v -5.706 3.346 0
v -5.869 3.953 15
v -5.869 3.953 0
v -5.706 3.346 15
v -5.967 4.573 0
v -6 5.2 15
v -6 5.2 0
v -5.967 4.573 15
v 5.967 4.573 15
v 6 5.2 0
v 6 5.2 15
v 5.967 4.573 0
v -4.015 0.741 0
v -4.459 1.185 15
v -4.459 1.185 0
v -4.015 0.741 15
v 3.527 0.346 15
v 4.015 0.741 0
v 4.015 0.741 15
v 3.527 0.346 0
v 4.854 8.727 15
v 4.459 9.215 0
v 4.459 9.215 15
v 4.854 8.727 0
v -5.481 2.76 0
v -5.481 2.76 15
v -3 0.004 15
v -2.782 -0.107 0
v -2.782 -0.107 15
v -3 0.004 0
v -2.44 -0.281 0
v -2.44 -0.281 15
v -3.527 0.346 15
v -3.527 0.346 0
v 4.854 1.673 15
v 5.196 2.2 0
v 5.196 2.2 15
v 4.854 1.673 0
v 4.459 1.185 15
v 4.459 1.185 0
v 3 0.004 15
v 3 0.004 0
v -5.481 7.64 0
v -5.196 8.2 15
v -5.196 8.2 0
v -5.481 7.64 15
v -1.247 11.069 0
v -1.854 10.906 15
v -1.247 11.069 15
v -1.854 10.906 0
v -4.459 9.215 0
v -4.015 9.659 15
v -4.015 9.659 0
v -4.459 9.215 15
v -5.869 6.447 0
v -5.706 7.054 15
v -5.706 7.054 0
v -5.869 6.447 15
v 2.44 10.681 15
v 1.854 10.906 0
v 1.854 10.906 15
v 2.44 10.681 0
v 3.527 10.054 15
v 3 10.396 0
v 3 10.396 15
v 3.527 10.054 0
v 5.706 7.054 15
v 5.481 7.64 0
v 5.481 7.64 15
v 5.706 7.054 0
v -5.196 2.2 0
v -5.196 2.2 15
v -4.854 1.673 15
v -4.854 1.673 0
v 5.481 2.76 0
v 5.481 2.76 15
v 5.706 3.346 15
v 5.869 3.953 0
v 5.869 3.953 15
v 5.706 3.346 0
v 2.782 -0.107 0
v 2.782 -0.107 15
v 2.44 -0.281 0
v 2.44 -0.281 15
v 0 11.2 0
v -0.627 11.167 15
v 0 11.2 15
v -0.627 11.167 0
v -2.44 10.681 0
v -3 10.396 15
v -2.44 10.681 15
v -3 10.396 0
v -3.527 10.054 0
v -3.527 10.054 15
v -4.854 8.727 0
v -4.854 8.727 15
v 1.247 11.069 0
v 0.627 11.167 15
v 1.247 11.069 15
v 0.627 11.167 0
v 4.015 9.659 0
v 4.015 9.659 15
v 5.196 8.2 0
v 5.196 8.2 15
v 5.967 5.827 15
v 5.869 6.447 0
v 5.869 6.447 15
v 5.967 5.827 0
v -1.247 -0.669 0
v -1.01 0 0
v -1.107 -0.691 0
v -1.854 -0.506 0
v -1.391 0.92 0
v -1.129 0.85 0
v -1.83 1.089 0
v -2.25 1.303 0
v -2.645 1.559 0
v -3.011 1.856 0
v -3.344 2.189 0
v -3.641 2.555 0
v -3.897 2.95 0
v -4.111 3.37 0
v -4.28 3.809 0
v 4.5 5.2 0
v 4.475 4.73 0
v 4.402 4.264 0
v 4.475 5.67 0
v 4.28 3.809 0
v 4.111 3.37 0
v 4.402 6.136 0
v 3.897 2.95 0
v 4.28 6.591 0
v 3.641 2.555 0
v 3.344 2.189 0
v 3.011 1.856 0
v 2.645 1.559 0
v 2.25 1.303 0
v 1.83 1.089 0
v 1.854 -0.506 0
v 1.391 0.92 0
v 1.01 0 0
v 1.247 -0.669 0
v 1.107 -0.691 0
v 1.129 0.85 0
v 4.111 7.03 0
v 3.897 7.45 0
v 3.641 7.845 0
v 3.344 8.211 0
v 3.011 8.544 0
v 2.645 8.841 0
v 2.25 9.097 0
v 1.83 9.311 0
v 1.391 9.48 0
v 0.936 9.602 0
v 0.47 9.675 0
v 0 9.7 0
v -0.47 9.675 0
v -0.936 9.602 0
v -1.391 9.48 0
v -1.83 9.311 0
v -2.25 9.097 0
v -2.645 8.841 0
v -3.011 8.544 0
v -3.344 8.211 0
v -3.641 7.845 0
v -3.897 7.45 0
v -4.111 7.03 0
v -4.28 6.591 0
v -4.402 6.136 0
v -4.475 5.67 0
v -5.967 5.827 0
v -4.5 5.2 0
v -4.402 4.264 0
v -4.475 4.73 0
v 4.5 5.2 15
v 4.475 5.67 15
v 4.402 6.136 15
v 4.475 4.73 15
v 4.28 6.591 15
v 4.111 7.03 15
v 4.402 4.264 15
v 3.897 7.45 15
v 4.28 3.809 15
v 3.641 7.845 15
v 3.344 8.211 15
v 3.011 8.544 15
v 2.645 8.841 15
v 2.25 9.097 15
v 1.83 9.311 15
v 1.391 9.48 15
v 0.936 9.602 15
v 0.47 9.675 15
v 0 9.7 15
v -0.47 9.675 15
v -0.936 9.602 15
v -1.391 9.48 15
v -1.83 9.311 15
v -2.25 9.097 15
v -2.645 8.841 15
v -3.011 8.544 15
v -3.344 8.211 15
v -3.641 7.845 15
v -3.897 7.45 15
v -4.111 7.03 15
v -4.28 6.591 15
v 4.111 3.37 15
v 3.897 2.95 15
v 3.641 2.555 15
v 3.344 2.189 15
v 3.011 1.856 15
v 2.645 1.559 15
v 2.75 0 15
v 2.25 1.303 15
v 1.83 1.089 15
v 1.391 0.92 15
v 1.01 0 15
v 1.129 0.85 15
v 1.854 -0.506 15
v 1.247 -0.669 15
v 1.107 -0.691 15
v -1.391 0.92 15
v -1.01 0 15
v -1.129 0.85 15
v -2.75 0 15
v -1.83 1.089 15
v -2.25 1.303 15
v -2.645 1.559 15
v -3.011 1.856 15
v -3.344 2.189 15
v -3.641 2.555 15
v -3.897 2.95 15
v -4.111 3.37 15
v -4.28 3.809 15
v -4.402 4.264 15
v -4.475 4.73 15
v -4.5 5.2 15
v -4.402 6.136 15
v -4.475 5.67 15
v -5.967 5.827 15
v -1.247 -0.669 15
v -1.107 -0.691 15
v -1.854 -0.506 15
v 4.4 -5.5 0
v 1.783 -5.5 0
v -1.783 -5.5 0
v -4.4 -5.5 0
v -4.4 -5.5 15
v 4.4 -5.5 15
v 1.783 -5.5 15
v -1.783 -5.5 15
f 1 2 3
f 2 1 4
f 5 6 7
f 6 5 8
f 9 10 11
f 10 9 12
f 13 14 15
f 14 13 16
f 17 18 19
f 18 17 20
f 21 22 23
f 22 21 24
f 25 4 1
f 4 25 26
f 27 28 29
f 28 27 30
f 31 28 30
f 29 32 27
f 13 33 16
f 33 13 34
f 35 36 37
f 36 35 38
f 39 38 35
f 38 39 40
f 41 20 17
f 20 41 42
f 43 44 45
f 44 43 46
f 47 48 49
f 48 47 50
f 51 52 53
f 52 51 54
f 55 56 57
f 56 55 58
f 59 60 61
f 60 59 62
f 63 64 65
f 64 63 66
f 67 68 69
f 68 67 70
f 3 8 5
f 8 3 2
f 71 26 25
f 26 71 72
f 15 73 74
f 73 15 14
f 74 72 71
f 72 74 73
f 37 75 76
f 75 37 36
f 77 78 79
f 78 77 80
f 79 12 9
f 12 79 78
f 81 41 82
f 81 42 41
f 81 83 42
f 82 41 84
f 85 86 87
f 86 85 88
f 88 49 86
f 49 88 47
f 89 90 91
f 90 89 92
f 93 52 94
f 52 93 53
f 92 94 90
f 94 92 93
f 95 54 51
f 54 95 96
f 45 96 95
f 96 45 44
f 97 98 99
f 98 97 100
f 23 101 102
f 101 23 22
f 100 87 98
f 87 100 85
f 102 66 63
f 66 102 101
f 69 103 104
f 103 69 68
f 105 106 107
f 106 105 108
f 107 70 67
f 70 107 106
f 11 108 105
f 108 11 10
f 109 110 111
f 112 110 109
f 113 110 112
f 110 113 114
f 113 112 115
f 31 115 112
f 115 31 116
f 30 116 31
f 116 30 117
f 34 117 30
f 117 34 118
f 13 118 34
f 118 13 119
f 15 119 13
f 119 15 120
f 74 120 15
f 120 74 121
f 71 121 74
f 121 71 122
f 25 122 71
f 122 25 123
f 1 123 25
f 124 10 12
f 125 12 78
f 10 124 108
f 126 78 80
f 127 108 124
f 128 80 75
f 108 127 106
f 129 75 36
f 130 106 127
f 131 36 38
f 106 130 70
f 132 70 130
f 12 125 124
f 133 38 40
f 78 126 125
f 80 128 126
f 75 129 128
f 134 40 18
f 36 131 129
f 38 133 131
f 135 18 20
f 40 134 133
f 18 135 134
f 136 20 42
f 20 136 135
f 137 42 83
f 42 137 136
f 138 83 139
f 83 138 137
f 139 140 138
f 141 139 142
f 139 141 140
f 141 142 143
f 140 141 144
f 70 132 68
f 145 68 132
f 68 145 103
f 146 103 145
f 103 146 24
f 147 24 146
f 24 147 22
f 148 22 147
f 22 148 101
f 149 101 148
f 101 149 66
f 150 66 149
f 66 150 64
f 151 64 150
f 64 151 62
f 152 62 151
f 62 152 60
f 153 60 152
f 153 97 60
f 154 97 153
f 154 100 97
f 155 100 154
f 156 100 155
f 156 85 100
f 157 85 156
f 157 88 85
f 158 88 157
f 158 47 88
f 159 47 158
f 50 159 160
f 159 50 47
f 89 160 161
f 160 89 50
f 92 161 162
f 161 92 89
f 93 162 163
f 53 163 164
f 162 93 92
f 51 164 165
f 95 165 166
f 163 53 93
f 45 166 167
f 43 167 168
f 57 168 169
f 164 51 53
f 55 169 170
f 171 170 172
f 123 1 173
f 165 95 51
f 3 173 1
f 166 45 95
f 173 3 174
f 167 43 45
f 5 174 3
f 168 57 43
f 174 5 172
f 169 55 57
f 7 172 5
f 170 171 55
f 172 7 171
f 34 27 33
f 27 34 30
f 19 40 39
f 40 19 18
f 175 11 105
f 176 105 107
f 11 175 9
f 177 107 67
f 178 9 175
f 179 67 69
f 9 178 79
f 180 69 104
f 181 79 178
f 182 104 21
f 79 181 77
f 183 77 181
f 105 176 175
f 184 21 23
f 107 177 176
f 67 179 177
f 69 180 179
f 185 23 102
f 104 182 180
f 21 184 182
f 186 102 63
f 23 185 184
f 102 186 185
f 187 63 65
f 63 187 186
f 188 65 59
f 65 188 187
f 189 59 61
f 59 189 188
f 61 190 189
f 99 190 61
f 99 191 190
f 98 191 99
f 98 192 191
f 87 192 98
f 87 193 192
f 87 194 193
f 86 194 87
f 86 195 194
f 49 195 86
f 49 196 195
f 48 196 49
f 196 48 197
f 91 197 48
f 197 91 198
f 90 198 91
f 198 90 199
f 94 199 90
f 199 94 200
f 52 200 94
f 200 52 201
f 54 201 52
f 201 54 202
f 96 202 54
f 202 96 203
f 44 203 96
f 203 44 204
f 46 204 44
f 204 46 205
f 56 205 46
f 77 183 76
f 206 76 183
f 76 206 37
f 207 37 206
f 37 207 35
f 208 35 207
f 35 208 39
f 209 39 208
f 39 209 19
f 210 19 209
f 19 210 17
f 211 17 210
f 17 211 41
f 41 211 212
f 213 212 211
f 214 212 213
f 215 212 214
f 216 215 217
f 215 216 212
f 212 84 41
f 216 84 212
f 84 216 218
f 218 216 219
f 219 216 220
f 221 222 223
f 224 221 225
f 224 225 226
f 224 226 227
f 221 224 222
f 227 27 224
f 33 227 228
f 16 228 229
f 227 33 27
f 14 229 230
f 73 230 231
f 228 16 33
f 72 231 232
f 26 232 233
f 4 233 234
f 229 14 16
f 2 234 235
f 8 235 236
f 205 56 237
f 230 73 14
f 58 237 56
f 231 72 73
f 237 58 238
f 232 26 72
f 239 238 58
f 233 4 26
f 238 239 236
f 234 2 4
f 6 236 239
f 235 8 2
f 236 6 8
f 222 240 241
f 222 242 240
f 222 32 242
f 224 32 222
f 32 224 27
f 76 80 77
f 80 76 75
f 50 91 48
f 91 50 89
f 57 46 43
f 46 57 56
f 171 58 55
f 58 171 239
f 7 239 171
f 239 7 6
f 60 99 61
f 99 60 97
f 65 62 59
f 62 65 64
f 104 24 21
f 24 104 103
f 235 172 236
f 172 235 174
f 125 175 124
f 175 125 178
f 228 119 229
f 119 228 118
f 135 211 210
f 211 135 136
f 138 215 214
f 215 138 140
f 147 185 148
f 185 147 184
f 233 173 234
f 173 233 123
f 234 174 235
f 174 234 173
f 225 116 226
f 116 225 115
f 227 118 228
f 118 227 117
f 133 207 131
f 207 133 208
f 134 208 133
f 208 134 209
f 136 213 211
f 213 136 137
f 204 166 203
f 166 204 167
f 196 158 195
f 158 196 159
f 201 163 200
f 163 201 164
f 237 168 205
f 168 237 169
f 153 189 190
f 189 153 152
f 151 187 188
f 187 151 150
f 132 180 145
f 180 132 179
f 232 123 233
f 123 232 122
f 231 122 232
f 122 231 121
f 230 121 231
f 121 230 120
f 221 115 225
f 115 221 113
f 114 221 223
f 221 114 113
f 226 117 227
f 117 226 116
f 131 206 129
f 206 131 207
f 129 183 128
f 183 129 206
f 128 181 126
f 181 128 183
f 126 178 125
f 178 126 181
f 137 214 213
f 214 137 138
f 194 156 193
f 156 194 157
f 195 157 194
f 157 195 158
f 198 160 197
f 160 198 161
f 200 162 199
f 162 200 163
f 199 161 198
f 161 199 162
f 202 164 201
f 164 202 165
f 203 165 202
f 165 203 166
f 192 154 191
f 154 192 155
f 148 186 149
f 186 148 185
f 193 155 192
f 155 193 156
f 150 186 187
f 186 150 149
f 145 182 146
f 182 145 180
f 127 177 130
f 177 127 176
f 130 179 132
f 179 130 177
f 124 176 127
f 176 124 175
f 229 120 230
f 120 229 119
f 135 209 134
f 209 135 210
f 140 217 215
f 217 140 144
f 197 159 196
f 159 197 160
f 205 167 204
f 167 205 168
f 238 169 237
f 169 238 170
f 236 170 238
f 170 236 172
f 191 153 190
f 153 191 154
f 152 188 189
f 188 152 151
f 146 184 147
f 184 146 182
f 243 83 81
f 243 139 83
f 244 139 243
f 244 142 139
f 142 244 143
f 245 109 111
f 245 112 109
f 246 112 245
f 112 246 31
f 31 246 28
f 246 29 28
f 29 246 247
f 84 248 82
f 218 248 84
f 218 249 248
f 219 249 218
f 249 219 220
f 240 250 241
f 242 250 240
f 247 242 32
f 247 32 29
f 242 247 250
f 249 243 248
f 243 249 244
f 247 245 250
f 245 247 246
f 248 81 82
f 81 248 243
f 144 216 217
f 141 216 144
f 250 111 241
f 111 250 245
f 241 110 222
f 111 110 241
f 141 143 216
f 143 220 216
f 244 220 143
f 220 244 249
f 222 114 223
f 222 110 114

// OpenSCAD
// file: long_bow_tie.scad
tilt_level = 1.1;

include <include.scad>;
include <globals.scad>;

obj_leg = 12;

function scale_x() = 1;
function scale_z() = (male_dove_depth-0.2)/male_dove_depth;

length = 50;

// shifts the upper dove to right
_offset = 0;


//long_bow_tie();
//long_bow_tie(25);

//long_bow_tie_half(length);
//long_bow_tie_half(30);
//long_bow_tie_half_split(length);

long_bow_tie_split(length);
//long_bow_tie_split(30);



module bow_tie_master(length){
    dovetail_3d(
        male_dove_max_width,
        male_dove_min_width,
        male_dove_depth,
        length
    );
}

module long_bow_tie_unscaled(length) {

    module endcyl() {
        translate([0, 0, -3])
        cylinder(d=24, h=6, $fn=60);
    }

    module endtub() {
        rotate([0, 90, 0])
        translate([0, 0, -15/2])
        difference() {
            cylinder(d=20, h=15, $fn=60);
            cylinder(d=12, h=16, $fn=60);

            translate([-20, 0, -0.1])
            cube([40, 20, 16]);
        }
    }

    module _half() {

        translate([0, length/2, 0])
        difference() {
            intersection(){
                rotate([90, 0, 0])
                bow_tie_master(length);

                rotate([90, 0, 0])
                cylinder(r=5.8, h=length * 2);
            }
            translate([13, 5, 0])
            rotate([90, 0, 25])
            endcyl();

            translate([-13, 5, 0])
            rotate([90, 0, -25])
            endcyl();

            translate([13, -length - 5, 0])
            rotate([90, 0, -25])
            endcyl();

            translate([-13, -length - 5, 0])
            rotate([90, 0, 25])
            endcyl();

            translate([0, -length + 4.5, 0])
            endtub();

            translate([0, -4.5, 0])
            rotate([180, 0, 0])
            endtub();
        }
    }

    union() {
        translate([_offset, 0, 0])
        _half();

        mirror([0, 0, 1])
        _half();
    }
}

module long_bow_tie(
    length=length, scale_x=scale_x(), 
    scale_z=scale_z(), middle=false) {

    scale([scale_x, 1, scale_z]) {
        if(middle) {
            long_bow_tie_unscaled(length);
        } else {
            translate([0, 0, male_dove_depth])
            long_bow_tie_unscaled(length);
        }
    }
}

module split(length) {
    translate([0, 0, -length/2 - 1])
    linear_extrude(height=length + 2)
    polygon(points=[
        [0, -1.5], [0.9, -1.5], [2, -5],
        [-2, -5], [-0.9, -1.5]
    ]);
}

module long_bow_tie_split(
    length=length, scale_x=scale_x(),
    scale_z=scale_z(), middle=false
) {

    module _do_split() {
        rotate([90, 0, 0])
        difference() {
            rotate([-90, 0, 0])
            long_bow_tie(
                length, scale_x=scale_x,
                scale_z=scale_z, middle=true);

            split(length);

            translate([_offset, 0, 0])
            rotate([0, 0, 180])
            split(length);
        }
    }
        
    if (!middle) {
        translate([0, 0, scale_z * male_dove_depth])
        _do_split();
    } else {
        _do_split();
    }
}

module long_bow_tie_half(
    length=length, scale_x=scale_x(),
    scale_z=scale_z(), middle=true) {

    rotate([0, -90, 0])
    intersection() {
        long_bow_tie(length, middle=middle);

        translate([0, -length/2, -24/2])
        chamfered_cube(
            13, length, 24, 1
        );
    }
}

module long_bow_tie_half_split(
    length=length, scale_x=scale_x(),
    scale_z=scale_z()) {

    union() {
        intersection() {
            long_bow_tie_split(length,
                scale_x=scale_x,
                scale_z=scale_z,
                middle=true);
            translate([0, 0, -6/2])
            cube([10, length, 6], center=true);
        }
        cube([scale_x*male_dove_min_width, length,
              1.6], center=true);

        translate([((scale_x*male_dove_min_width)/2)/2, 0, 4/2])
        cube([(scale_x*male_dove_min_width)/2, length,
              4], center=true);

        translate([0, 0, 4])
        intersection() {
            long_bow_tie(
                length,scale_x=scale_x, scale_z=scale_z,
                middle=true);

            translate([5/2, 0, 5/2])
            cube([5, length, 5], center=true);
        }
    }
}
// file: globals.scad
/*
Most things in this file is represented as one millimeter, so keep that in mind while changing things.
Some of the setting are not mm but at variables that you can set, such as 2*x=2x and you are setting what x is.
I will try to specify when things are variables and not exact measurements.
*/

// printer slop
slop = 0.15;

obj_leg = 30;
leg_length = 5.5;
small_number = 0.001;
metal_core_rode_global = 5;


///////////////// number of holes /////////////////////
z_hole_number = 8;
other_holes = 8;

///////////////// Pins /////////////////////

//pins that poke out
ball_size = 10;
pin_height = 20;
pin_diameter = 6;


//holes
hole_ball_size = ball_size;
hole_pin_height = pin_height;
hole_pin_diameter = pin_diameter;

///////////////// Z THINGS /////////////////////

berring_slot_width = 7.5;
berring_slot_depth = 6.5;
metal_core_rode = 5;

///////////////// X THINGS /////////////////////

//male dove tails
male_dove_max_width=8;
male_dove_min_width=5;
male_dove_depth=5;
male_dove_height=obj_leg/2;

function scaled_male_dove_max_width() = male_dove_max_width - slop;
function scaled_male_dove_min_width() = male_dove_min_width - slop;
function scaled_male_dove_depth() = male_dove_depth - slop;

//female dove tails, this is found on the y mounts
girl_max_width=11;
girl_min_width=5;
girl_depth=5;
girl_height=obj_leg;


///////////////// Y THINGS /////////////////////
/*
The Y is so normal that all of those global variables at the top should change all of the setting in it, this section is set her incase there are variables set in the future development of this project.
*/

// stepper
motor_side_length = 43.2;
motor_bolt_hole_distance = 31;
motor_center_hole = 23;
motor_shaft_dia = 5;
motor_shaft_hole_dia = 5+2*slop;

// bolts etc.
bolt_hole_dia = 3+2*slop;
bolt_head_hole_dia = 5.8;

m4_bolt_hole_dia = 4+2*slop;
m4_bolt_head_hole_dia = 6.8+2*slop;


m3_nut_side = 5.65;
m3_nut_height = 2.3;
m4_nut_side = 6.85;
m4_nut_height = 3.1;

// threaded rod
lifter_rod_diam = 9.86;
hole_threaded_rod = lifter_rod_diam+2*slop;

// for the extensions
metal_rod_size = 9;
// file: long_tie.scad
length = 50;

include <include.scad>;
include <globals.scad>;

use <long_bow_tie.scad>;

$fn=30;

// alter these the get properly fitting parts
scale_x = scale_x();
scale_z = scale_z();
length = 50;

module long_tie(length=length) {
    translate([0,0,scaled_male_dove_depth()]) rotate([0,180,0]) difference(){
        long_bow_tie(length, scale_x=scale_x, scale_z=scale_z);
        translate([-5,-length/2-1,scaled_male_dove_depth()]) cube([10,length+2,male_dove_depth]);
    }
}

module long_tie_split(length=length) {
    union() {
        difference() {
            translate([0,0,-male_dove_depth+slop]) long_bow_tie_split(length);
            translate([0,0, -3.5]) cube([10,length+1,7], center=true);
        }
        translate([0,0, 0.8]) cube([4,length,1.6], center=true);
    }
}

module long_tie_half(length=length) {
    rotate([0,-90,0]) intersection() {
        long_tie(length);
        translate([0,-length/2,0]) cube([5,length,5]);
    }
}

long_tie(length);
//long_tie_half(length);
//long_tie_split(length);
// main file
use <long_tie.scad>;
include <include.scad>;
include <globals.scad>;

$fn=60;

rotate([90,180,0]) difference() {
    union() {
        scale([1.1,1,1.1]) rotate([90,0,0]) male_dovetail(15);
        translate([0,0,-5.2]) rotate([90,0,0]) difference() {
            cylinder(d=12, h=15);
            cylinder(d=9, h=16);
        }
    }
    rotate([0,8,0]) translate([-1,-15,-1]) cube([2,20,7]);
    rotate([0,-8,0]) translate([-1,-15,-1]) cube([2,20,7]);
}
